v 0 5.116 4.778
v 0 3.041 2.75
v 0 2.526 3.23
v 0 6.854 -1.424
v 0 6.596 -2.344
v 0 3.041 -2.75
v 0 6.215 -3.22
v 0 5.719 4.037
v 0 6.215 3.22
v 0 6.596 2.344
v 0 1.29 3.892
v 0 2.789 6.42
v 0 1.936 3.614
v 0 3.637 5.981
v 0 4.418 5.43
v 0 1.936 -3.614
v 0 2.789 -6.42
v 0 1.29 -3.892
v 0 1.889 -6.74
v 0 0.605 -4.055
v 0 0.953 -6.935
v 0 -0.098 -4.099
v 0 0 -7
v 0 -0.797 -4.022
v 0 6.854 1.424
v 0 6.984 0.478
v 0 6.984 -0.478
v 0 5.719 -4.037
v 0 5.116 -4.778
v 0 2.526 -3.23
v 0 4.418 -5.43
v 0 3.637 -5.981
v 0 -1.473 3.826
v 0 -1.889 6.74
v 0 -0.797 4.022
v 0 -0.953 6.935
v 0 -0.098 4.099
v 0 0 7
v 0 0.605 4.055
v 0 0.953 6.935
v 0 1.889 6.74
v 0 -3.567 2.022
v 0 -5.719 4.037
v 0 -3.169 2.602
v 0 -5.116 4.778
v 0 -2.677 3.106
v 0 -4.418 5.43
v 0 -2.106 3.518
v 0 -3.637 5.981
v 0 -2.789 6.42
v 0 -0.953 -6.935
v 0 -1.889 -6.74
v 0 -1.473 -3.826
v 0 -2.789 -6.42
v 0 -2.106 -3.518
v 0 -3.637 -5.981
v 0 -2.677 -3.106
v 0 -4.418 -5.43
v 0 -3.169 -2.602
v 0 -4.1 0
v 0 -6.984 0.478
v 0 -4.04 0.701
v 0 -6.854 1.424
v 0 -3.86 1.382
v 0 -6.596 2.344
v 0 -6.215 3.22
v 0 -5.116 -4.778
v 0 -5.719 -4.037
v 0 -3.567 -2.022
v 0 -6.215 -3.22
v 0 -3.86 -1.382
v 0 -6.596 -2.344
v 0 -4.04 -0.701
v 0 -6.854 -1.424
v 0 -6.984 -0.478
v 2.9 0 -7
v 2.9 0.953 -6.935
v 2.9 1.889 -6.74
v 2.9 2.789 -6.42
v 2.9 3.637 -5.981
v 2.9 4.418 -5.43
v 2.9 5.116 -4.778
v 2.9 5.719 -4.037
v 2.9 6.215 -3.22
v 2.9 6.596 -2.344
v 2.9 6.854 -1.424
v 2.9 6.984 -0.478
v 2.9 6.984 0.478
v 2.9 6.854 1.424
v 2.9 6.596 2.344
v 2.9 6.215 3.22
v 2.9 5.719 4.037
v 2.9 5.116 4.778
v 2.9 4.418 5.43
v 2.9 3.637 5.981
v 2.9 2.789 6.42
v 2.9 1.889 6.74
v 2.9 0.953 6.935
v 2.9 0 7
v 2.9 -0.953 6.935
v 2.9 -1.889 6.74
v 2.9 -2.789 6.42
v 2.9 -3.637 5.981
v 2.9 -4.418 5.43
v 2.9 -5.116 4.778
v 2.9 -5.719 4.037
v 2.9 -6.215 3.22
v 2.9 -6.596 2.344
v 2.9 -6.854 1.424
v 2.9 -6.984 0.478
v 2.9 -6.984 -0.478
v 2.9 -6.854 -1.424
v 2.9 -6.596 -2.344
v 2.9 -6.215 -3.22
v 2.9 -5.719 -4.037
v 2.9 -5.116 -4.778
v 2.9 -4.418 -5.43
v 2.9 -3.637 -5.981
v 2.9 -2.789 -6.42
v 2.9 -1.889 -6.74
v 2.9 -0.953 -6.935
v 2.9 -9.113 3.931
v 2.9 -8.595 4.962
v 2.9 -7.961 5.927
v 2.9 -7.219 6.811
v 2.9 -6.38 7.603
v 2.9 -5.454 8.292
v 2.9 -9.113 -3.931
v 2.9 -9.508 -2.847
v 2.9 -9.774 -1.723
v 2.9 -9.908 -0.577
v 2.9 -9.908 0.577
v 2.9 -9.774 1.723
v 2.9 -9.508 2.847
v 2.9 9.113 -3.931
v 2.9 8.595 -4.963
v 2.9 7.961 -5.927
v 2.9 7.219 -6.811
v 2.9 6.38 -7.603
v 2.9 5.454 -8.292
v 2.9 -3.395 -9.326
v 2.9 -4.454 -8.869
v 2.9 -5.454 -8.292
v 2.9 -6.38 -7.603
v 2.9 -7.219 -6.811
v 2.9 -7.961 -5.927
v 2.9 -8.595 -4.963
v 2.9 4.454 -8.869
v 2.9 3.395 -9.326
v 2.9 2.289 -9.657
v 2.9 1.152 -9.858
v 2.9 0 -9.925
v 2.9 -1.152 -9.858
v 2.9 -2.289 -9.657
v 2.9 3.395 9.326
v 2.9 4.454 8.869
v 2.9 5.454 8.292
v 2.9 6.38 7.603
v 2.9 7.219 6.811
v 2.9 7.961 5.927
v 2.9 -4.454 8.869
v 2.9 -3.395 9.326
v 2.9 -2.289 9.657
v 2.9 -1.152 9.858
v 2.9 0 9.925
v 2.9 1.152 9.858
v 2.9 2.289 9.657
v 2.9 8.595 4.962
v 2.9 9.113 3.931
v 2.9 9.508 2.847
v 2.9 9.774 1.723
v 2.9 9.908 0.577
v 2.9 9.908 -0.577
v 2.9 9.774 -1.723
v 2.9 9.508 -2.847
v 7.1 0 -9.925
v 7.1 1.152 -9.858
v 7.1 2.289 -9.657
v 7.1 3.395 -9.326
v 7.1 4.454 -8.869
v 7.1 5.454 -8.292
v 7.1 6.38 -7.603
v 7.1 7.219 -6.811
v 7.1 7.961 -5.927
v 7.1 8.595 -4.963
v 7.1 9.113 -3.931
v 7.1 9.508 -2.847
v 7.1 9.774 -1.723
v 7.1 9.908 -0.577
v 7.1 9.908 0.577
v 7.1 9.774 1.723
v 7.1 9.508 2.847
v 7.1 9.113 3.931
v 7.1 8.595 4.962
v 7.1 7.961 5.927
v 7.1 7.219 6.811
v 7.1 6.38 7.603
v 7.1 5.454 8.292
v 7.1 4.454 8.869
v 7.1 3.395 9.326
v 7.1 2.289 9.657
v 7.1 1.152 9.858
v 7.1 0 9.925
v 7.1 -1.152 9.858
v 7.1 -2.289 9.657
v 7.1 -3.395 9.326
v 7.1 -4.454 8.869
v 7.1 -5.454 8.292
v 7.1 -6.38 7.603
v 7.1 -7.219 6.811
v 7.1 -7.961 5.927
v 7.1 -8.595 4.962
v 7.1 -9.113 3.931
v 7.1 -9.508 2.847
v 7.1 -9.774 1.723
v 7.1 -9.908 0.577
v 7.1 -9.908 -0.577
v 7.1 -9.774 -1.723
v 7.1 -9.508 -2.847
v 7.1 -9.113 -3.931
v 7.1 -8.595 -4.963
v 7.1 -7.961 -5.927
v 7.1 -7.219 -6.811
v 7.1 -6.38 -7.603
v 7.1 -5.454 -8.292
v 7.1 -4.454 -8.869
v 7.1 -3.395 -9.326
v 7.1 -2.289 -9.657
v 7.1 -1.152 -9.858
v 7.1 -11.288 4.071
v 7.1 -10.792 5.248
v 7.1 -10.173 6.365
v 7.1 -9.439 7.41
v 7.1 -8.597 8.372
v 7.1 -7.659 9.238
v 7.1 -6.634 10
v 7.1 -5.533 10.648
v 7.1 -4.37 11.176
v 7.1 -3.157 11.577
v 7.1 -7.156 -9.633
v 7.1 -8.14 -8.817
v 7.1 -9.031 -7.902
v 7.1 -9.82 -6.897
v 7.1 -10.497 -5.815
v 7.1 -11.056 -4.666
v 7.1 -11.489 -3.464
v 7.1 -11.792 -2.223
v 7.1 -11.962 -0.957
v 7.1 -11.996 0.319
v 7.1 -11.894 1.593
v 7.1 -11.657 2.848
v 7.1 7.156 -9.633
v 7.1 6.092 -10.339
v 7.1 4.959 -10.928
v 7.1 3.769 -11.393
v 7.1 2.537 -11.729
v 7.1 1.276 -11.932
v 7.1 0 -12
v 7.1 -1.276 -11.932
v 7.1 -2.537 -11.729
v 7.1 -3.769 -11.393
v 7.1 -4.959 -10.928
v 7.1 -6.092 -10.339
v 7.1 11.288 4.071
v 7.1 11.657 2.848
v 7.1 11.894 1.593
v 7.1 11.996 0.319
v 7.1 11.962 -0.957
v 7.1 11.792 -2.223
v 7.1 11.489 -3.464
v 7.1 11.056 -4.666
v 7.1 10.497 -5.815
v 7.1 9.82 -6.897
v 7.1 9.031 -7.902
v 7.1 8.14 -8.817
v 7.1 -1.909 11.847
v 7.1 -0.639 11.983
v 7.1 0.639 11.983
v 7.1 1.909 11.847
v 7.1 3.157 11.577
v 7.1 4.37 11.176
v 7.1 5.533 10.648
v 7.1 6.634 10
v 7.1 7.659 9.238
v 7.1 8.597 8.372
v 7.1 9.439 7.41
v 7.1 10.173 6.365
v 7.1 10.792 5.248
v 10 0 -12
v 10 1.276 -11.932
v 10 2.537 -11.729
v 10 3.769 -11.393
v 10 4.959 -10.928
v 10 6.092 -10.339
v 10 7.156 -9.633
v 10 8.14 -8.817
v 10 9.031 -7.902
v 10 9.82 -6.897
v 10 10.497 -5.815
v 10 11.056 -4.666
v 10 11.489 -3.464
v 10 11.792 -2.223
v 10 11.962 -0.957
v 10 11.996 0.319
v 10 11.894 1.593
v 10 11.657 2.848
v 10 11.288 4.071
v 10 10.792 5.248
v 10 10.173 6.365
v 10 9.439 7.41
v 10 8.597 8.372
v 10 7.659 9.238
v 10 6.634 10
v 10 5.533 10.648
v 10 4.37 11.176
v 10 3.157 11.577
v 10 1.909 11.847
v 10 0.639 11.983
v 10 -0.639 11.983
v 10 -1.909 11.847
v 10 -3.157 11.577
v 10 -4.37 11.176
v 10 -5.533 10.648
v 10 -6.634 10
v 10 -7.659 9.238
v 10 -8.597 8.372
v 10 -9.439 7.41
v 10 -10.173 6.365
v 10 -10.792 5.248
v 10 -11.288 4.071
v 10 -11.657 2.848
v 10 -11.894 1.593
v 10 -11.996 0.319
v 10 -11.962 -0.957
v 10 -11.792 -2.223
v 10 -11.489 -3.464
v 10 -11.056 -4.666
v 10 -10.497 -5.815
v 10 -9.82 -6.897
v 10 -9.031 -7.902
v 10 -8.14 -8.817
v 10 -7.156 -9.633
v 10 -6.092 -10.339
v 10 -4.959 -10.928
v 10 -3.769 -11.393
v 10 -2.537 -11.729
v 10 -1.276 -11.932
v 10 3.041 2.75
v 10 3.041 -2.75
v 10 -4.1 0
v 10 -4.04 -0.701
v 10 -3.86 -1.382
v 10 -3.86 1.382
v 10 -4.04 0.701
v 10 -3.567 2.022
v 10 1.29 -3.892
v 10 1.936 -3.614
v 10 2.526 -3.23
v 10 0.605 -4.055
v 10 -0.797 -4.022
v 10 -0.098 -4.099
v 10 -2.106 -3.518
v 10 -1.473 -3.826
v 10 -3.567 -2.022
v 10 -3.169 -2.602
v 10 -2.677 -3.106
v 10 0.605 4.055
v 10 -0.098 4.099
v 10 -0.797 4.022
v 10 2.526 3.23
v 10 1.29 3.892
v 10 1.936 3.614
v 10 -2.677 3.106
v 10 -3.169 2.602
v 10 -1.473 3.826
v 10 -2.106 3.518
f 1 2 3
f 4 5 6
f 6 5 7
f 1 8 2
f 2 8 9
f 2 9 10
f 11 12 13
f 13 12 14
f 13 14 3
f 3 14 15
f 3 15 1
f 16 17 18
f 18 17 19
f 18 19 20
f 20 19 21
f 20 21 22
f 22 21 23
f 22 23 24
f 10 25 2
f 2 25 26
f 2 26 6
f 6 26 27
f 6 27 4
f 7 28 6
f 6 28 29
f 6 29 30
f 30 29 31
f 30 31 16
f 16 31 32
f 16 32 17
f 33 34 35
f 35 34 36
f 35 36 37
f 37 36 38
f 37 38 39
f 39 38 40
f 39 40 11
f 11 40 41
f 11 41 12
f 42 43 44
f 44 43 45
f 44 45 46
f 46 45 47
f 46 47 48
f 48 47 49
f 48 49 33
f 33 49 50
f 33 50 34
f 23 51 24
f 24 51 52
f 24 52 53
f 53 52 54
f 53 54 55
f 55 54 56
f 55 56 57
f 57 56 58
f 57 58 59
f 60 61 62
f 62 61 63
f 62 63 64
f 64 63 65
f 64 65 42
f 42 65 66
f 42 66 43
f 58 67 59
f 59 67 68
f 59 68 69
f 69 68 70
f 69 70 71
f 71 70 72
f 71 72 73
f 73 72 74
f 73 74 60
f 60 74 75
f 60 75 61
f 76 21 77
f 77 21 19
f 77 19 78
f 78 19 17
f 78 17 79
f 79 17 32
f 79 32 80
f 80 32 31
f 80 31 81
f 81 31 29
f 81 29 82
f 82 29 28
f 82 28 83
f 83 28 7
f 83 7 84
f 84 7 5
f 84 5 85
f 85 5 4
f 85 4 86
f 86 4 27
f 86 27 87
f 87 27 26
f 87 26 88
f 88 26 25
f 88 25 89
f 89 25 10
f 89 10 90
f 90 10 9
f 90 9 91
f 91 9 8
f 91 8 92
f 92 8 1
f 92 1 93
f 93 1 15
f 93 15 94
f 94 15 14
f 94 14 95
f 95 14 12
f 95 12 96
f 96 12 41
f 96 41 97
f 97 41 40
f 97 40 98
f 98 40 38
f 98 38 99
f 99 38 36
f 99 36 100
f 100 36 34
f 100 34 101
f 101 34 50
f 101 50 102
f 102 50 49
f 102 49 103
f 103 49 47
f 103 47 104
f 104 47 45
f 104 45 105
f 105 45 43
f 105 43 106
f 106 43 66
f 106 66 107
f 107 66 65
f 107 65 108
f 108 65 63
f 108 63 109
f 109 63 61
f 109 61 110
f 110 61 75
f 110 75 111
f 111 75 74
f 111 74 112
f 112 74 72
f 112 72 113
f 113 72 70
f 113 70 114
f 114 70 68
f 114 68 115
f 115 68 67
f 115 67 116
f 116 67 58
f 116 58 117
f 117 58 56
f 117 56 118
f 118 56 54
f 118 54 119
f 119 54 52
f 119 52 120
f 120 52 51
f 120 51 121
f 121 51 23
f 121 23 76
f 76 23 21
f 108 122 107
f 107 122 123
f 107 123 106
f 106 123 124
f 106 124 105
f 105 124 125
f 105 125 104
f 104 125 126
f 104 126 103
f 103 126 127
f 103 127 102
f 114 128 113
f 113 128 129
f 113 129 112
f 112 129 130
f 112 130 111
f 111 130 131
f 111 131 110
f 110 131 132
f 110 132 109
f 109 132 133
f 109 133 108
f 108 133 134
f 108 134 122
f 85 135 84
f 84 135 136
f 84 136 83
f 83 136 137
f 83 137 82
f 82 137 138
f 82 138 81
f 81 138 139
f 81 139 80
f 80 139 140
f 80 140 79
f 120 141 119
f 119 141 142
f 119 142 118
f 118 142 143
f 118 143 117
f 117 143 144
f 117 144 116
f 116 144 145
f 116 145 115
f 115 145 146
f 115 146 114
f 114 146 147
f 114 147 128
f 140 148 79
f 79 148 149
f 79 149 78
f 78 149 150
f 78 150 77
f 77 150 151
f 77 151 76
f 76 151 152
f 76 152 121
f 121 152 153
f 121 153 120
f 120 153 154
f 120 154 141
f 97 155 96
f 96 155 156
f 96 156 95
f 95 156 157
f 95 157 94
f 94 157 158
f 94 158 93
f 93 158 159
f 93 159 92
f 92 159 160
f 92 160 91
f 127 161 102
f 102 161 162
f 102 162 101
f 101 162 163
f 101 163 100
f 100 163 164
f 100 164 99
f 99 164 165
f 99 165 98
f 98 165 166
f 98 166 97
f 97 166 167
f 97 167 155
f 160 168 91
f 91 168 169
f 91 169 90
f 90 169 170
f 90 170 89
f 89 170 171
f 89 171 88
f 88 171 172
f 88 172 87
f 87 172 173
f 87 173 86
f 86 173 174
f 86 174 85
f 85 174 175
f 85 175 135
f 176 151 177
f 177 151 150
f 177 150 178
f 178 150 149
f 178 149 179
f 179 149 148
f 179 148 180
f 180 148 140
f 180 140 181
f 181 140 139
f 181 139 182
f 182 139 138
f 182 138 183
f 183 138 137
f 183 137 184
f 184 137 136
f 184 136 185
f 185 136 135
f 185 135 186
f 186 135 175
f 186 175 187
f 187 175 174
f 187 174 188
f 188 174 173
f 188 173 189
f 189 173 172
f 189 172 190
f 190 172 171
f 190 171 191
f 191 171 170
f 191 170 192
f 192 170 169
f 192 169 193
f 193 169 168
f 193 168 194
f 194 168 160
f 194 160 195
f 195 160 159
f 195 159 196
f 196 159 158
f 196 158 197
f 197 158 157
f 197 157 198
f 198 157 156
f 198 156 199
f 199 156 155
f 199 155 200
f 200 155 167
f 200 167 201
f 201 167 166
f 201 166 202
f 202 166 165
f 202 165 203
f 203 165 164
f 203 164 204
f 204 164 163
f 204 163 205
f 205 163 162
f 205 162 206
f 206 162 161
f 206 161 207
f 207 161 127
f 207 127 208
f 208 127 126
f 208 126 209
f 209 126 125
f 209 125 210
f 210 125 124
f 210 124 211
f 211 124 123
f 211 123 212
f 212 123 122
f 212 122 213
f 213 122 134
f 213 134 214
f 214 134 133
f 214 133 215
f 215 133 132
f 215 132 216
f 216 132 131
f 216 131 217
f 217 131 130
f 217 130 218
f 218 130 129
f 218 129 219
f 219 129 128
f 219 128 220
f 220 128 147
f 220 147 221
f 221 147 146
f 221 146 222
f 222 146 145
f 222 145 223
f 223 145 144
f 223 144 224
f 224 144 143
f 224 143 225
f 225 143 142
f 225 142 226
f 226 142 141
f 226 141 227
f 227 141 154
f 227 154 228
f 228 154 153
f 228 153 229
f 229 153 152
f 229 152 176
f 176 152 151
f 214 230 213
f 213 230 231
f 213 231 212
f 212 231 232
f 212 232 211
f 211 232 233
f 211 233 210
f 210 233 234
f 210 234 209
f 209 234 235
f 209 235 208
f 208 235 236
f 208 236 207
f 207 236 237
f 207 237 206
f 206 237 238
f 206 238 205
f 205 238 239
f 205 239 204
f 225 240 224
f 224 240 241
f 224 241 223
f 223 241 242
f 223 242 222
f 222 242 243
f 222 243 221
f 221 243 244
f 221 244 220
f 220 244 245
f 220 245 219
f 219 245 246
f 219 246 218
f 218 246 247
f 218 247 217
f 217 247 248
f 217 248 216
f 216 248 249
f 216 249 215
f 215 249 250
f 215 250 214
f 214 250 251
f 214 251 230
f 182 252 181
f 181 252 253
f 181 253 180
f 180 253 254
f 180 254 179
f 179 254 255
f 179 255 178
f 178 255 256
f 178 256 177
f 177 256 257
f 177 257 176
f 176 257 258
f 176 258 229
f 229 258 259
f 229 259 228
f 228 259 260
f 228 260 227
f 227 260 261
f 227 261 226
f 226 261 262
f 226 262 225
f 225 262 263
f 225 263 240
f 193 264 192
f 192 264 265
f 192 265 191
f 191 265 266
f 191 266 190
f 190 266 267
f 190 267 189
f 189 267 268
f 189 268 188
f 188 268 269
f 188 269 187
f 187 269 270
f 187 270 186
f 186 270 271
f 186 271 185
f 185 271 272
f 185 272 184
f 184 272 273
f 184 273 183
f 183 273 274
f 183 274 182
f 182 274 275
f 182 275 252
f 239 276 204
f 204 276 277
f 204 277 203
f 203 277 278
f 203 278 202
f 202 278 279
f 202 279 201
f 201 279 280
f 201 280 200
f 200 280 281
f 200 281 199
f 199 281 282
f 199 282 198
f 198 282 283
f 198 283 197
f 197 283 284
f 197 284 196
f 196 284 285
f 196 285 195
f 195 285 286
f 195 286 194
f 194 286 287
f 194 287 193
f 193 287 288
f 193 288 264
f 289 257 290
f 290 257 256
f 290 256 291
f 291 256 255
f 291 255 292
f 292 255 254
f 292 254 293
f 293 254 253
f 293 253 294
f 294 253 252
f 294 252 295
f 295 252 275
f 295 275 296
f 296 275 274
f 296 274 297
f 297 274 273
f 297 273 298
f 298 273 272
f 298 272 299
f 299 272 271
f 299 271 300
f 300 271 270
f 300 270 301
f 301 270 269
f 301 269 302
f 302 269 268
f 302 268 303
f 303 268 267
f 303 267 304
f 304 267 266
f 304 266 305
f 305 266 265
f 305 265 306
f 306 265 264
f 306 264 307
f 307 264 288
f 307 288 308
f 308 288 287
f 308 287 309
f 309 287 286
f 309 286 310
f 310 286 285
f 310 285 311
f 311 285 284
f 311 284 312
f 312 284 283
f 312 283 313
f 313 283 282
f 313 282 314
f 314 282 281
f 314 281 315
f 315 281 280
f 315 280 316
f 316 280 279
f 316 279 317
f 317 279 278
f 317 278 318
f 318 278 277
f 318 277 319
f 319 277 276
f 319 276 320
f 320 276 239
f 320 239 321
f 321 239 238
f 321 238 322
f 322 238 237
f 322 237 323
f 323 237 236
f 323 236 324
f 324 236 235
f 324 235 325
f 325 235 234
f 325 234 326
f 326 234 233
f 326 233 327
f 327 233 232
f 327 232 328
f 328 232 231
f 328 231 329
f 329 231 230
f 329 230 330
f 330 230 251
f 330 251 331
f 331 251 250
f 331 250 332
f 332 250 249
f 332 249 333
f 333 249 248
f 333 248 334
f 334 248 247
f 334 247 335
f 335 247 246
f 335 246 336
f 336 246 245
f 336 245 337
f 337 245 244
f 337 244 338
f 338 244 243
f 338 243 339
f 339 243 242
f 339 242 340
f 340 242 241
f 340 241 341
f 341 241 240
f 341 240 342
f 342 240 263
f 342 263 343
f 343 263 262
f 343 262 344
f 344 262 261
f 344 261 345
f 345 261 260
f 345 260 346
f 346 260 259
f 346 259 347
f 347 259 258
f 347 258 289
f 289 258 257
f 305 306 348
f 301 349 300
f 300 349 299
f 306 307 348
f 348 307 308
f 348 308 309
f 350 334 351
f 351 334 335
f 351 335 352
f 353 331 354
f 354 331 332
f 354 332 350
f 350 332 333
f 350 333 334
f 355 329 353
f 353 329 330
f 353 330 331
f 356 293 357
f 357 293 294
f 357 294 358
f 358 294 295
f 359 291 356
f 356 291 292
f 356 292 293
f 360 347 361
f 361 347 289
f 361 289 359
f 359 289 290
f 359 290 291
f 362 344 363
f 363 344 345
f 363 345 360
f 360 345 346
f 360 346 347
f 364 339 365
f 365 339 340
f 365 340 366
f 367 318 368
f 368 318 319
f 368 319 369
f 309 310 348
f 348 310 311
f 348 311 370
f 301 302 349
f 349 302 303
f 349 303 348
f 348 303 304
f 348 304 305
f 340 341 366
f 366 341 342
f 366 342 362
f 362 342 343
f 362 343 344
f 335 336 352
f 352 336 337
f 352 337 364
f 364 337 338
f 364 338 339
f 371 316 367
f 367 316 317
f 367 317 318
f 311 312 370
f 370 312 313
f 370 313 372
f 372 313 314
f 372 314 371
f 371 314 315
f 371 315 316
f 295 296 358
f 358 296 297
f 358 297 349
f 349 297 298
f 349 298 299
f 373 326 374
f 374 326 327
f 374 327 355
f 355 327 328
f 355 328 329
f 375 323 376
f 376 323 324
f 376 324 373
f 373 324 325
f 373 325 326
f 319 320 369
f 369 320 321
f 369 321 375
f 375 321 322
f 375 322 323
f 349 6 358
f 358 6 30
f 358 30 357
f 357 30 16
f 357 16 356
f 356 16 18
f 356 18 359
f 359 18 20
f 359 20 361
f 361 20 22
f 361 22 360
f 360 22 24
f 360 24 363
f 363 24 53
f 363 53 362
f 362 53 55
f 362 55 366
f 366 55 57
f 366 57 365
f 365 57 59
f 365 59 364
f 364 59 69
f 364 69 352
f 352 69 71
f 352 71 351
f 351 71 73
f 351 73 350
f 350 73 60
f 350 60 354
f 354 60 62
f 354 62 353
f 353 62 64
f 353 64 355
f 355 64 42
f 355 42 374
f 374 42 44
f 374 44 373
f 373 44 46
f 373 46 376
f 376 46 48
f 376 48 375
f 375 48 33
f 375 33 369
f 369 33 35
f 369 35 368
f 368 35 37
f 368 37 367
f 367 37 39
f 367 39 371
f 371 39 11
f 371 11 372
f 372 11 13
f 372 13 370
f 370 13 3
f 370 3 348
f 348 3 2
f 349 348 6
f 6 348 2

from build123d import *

# Parameters (mm, degrees)
SCHNITT_LINEAR_AUSTRAGEN1_DEPTH = 20.697715604


with BuildPart() as part:
    # Skizze1 → Rotation1 (revolve)
    with BuildSketch(Plane.XY, mode=Mode.PRIVATE) as rotation1_sk:
        Polygon((0, 0), (0, 7), (2.9, 7), (2.9, 9.925), (7.1, 9.925), (7.1, 12), (10, 12), (10, 0), align=None)
    revolve(rotation1_sk.sketch.rotate(Axis((0, 0, 0), (-1, 0, 0)), 90), axis=Axis((0, 0, 0), (-1, 0, 0)))

    # Skizze2 → Schnitt-Linear austragen1 (cut, through all)
    with BuildSketch(Plane.ZY):
        with BuildLine():
            Line((-2.75, 3.04097024), (2.75, 3.04097024))
            ThreePointArc((2.75, 3.04097024), (0, -4.1), (-2.75, 3.04097024))
        make_face()
    extrude(amount=-SCHNITT_LINEAR_AUSTRAGEN1_DEPTH, mode=Mode.SUBTRACT)


solid = part.part
